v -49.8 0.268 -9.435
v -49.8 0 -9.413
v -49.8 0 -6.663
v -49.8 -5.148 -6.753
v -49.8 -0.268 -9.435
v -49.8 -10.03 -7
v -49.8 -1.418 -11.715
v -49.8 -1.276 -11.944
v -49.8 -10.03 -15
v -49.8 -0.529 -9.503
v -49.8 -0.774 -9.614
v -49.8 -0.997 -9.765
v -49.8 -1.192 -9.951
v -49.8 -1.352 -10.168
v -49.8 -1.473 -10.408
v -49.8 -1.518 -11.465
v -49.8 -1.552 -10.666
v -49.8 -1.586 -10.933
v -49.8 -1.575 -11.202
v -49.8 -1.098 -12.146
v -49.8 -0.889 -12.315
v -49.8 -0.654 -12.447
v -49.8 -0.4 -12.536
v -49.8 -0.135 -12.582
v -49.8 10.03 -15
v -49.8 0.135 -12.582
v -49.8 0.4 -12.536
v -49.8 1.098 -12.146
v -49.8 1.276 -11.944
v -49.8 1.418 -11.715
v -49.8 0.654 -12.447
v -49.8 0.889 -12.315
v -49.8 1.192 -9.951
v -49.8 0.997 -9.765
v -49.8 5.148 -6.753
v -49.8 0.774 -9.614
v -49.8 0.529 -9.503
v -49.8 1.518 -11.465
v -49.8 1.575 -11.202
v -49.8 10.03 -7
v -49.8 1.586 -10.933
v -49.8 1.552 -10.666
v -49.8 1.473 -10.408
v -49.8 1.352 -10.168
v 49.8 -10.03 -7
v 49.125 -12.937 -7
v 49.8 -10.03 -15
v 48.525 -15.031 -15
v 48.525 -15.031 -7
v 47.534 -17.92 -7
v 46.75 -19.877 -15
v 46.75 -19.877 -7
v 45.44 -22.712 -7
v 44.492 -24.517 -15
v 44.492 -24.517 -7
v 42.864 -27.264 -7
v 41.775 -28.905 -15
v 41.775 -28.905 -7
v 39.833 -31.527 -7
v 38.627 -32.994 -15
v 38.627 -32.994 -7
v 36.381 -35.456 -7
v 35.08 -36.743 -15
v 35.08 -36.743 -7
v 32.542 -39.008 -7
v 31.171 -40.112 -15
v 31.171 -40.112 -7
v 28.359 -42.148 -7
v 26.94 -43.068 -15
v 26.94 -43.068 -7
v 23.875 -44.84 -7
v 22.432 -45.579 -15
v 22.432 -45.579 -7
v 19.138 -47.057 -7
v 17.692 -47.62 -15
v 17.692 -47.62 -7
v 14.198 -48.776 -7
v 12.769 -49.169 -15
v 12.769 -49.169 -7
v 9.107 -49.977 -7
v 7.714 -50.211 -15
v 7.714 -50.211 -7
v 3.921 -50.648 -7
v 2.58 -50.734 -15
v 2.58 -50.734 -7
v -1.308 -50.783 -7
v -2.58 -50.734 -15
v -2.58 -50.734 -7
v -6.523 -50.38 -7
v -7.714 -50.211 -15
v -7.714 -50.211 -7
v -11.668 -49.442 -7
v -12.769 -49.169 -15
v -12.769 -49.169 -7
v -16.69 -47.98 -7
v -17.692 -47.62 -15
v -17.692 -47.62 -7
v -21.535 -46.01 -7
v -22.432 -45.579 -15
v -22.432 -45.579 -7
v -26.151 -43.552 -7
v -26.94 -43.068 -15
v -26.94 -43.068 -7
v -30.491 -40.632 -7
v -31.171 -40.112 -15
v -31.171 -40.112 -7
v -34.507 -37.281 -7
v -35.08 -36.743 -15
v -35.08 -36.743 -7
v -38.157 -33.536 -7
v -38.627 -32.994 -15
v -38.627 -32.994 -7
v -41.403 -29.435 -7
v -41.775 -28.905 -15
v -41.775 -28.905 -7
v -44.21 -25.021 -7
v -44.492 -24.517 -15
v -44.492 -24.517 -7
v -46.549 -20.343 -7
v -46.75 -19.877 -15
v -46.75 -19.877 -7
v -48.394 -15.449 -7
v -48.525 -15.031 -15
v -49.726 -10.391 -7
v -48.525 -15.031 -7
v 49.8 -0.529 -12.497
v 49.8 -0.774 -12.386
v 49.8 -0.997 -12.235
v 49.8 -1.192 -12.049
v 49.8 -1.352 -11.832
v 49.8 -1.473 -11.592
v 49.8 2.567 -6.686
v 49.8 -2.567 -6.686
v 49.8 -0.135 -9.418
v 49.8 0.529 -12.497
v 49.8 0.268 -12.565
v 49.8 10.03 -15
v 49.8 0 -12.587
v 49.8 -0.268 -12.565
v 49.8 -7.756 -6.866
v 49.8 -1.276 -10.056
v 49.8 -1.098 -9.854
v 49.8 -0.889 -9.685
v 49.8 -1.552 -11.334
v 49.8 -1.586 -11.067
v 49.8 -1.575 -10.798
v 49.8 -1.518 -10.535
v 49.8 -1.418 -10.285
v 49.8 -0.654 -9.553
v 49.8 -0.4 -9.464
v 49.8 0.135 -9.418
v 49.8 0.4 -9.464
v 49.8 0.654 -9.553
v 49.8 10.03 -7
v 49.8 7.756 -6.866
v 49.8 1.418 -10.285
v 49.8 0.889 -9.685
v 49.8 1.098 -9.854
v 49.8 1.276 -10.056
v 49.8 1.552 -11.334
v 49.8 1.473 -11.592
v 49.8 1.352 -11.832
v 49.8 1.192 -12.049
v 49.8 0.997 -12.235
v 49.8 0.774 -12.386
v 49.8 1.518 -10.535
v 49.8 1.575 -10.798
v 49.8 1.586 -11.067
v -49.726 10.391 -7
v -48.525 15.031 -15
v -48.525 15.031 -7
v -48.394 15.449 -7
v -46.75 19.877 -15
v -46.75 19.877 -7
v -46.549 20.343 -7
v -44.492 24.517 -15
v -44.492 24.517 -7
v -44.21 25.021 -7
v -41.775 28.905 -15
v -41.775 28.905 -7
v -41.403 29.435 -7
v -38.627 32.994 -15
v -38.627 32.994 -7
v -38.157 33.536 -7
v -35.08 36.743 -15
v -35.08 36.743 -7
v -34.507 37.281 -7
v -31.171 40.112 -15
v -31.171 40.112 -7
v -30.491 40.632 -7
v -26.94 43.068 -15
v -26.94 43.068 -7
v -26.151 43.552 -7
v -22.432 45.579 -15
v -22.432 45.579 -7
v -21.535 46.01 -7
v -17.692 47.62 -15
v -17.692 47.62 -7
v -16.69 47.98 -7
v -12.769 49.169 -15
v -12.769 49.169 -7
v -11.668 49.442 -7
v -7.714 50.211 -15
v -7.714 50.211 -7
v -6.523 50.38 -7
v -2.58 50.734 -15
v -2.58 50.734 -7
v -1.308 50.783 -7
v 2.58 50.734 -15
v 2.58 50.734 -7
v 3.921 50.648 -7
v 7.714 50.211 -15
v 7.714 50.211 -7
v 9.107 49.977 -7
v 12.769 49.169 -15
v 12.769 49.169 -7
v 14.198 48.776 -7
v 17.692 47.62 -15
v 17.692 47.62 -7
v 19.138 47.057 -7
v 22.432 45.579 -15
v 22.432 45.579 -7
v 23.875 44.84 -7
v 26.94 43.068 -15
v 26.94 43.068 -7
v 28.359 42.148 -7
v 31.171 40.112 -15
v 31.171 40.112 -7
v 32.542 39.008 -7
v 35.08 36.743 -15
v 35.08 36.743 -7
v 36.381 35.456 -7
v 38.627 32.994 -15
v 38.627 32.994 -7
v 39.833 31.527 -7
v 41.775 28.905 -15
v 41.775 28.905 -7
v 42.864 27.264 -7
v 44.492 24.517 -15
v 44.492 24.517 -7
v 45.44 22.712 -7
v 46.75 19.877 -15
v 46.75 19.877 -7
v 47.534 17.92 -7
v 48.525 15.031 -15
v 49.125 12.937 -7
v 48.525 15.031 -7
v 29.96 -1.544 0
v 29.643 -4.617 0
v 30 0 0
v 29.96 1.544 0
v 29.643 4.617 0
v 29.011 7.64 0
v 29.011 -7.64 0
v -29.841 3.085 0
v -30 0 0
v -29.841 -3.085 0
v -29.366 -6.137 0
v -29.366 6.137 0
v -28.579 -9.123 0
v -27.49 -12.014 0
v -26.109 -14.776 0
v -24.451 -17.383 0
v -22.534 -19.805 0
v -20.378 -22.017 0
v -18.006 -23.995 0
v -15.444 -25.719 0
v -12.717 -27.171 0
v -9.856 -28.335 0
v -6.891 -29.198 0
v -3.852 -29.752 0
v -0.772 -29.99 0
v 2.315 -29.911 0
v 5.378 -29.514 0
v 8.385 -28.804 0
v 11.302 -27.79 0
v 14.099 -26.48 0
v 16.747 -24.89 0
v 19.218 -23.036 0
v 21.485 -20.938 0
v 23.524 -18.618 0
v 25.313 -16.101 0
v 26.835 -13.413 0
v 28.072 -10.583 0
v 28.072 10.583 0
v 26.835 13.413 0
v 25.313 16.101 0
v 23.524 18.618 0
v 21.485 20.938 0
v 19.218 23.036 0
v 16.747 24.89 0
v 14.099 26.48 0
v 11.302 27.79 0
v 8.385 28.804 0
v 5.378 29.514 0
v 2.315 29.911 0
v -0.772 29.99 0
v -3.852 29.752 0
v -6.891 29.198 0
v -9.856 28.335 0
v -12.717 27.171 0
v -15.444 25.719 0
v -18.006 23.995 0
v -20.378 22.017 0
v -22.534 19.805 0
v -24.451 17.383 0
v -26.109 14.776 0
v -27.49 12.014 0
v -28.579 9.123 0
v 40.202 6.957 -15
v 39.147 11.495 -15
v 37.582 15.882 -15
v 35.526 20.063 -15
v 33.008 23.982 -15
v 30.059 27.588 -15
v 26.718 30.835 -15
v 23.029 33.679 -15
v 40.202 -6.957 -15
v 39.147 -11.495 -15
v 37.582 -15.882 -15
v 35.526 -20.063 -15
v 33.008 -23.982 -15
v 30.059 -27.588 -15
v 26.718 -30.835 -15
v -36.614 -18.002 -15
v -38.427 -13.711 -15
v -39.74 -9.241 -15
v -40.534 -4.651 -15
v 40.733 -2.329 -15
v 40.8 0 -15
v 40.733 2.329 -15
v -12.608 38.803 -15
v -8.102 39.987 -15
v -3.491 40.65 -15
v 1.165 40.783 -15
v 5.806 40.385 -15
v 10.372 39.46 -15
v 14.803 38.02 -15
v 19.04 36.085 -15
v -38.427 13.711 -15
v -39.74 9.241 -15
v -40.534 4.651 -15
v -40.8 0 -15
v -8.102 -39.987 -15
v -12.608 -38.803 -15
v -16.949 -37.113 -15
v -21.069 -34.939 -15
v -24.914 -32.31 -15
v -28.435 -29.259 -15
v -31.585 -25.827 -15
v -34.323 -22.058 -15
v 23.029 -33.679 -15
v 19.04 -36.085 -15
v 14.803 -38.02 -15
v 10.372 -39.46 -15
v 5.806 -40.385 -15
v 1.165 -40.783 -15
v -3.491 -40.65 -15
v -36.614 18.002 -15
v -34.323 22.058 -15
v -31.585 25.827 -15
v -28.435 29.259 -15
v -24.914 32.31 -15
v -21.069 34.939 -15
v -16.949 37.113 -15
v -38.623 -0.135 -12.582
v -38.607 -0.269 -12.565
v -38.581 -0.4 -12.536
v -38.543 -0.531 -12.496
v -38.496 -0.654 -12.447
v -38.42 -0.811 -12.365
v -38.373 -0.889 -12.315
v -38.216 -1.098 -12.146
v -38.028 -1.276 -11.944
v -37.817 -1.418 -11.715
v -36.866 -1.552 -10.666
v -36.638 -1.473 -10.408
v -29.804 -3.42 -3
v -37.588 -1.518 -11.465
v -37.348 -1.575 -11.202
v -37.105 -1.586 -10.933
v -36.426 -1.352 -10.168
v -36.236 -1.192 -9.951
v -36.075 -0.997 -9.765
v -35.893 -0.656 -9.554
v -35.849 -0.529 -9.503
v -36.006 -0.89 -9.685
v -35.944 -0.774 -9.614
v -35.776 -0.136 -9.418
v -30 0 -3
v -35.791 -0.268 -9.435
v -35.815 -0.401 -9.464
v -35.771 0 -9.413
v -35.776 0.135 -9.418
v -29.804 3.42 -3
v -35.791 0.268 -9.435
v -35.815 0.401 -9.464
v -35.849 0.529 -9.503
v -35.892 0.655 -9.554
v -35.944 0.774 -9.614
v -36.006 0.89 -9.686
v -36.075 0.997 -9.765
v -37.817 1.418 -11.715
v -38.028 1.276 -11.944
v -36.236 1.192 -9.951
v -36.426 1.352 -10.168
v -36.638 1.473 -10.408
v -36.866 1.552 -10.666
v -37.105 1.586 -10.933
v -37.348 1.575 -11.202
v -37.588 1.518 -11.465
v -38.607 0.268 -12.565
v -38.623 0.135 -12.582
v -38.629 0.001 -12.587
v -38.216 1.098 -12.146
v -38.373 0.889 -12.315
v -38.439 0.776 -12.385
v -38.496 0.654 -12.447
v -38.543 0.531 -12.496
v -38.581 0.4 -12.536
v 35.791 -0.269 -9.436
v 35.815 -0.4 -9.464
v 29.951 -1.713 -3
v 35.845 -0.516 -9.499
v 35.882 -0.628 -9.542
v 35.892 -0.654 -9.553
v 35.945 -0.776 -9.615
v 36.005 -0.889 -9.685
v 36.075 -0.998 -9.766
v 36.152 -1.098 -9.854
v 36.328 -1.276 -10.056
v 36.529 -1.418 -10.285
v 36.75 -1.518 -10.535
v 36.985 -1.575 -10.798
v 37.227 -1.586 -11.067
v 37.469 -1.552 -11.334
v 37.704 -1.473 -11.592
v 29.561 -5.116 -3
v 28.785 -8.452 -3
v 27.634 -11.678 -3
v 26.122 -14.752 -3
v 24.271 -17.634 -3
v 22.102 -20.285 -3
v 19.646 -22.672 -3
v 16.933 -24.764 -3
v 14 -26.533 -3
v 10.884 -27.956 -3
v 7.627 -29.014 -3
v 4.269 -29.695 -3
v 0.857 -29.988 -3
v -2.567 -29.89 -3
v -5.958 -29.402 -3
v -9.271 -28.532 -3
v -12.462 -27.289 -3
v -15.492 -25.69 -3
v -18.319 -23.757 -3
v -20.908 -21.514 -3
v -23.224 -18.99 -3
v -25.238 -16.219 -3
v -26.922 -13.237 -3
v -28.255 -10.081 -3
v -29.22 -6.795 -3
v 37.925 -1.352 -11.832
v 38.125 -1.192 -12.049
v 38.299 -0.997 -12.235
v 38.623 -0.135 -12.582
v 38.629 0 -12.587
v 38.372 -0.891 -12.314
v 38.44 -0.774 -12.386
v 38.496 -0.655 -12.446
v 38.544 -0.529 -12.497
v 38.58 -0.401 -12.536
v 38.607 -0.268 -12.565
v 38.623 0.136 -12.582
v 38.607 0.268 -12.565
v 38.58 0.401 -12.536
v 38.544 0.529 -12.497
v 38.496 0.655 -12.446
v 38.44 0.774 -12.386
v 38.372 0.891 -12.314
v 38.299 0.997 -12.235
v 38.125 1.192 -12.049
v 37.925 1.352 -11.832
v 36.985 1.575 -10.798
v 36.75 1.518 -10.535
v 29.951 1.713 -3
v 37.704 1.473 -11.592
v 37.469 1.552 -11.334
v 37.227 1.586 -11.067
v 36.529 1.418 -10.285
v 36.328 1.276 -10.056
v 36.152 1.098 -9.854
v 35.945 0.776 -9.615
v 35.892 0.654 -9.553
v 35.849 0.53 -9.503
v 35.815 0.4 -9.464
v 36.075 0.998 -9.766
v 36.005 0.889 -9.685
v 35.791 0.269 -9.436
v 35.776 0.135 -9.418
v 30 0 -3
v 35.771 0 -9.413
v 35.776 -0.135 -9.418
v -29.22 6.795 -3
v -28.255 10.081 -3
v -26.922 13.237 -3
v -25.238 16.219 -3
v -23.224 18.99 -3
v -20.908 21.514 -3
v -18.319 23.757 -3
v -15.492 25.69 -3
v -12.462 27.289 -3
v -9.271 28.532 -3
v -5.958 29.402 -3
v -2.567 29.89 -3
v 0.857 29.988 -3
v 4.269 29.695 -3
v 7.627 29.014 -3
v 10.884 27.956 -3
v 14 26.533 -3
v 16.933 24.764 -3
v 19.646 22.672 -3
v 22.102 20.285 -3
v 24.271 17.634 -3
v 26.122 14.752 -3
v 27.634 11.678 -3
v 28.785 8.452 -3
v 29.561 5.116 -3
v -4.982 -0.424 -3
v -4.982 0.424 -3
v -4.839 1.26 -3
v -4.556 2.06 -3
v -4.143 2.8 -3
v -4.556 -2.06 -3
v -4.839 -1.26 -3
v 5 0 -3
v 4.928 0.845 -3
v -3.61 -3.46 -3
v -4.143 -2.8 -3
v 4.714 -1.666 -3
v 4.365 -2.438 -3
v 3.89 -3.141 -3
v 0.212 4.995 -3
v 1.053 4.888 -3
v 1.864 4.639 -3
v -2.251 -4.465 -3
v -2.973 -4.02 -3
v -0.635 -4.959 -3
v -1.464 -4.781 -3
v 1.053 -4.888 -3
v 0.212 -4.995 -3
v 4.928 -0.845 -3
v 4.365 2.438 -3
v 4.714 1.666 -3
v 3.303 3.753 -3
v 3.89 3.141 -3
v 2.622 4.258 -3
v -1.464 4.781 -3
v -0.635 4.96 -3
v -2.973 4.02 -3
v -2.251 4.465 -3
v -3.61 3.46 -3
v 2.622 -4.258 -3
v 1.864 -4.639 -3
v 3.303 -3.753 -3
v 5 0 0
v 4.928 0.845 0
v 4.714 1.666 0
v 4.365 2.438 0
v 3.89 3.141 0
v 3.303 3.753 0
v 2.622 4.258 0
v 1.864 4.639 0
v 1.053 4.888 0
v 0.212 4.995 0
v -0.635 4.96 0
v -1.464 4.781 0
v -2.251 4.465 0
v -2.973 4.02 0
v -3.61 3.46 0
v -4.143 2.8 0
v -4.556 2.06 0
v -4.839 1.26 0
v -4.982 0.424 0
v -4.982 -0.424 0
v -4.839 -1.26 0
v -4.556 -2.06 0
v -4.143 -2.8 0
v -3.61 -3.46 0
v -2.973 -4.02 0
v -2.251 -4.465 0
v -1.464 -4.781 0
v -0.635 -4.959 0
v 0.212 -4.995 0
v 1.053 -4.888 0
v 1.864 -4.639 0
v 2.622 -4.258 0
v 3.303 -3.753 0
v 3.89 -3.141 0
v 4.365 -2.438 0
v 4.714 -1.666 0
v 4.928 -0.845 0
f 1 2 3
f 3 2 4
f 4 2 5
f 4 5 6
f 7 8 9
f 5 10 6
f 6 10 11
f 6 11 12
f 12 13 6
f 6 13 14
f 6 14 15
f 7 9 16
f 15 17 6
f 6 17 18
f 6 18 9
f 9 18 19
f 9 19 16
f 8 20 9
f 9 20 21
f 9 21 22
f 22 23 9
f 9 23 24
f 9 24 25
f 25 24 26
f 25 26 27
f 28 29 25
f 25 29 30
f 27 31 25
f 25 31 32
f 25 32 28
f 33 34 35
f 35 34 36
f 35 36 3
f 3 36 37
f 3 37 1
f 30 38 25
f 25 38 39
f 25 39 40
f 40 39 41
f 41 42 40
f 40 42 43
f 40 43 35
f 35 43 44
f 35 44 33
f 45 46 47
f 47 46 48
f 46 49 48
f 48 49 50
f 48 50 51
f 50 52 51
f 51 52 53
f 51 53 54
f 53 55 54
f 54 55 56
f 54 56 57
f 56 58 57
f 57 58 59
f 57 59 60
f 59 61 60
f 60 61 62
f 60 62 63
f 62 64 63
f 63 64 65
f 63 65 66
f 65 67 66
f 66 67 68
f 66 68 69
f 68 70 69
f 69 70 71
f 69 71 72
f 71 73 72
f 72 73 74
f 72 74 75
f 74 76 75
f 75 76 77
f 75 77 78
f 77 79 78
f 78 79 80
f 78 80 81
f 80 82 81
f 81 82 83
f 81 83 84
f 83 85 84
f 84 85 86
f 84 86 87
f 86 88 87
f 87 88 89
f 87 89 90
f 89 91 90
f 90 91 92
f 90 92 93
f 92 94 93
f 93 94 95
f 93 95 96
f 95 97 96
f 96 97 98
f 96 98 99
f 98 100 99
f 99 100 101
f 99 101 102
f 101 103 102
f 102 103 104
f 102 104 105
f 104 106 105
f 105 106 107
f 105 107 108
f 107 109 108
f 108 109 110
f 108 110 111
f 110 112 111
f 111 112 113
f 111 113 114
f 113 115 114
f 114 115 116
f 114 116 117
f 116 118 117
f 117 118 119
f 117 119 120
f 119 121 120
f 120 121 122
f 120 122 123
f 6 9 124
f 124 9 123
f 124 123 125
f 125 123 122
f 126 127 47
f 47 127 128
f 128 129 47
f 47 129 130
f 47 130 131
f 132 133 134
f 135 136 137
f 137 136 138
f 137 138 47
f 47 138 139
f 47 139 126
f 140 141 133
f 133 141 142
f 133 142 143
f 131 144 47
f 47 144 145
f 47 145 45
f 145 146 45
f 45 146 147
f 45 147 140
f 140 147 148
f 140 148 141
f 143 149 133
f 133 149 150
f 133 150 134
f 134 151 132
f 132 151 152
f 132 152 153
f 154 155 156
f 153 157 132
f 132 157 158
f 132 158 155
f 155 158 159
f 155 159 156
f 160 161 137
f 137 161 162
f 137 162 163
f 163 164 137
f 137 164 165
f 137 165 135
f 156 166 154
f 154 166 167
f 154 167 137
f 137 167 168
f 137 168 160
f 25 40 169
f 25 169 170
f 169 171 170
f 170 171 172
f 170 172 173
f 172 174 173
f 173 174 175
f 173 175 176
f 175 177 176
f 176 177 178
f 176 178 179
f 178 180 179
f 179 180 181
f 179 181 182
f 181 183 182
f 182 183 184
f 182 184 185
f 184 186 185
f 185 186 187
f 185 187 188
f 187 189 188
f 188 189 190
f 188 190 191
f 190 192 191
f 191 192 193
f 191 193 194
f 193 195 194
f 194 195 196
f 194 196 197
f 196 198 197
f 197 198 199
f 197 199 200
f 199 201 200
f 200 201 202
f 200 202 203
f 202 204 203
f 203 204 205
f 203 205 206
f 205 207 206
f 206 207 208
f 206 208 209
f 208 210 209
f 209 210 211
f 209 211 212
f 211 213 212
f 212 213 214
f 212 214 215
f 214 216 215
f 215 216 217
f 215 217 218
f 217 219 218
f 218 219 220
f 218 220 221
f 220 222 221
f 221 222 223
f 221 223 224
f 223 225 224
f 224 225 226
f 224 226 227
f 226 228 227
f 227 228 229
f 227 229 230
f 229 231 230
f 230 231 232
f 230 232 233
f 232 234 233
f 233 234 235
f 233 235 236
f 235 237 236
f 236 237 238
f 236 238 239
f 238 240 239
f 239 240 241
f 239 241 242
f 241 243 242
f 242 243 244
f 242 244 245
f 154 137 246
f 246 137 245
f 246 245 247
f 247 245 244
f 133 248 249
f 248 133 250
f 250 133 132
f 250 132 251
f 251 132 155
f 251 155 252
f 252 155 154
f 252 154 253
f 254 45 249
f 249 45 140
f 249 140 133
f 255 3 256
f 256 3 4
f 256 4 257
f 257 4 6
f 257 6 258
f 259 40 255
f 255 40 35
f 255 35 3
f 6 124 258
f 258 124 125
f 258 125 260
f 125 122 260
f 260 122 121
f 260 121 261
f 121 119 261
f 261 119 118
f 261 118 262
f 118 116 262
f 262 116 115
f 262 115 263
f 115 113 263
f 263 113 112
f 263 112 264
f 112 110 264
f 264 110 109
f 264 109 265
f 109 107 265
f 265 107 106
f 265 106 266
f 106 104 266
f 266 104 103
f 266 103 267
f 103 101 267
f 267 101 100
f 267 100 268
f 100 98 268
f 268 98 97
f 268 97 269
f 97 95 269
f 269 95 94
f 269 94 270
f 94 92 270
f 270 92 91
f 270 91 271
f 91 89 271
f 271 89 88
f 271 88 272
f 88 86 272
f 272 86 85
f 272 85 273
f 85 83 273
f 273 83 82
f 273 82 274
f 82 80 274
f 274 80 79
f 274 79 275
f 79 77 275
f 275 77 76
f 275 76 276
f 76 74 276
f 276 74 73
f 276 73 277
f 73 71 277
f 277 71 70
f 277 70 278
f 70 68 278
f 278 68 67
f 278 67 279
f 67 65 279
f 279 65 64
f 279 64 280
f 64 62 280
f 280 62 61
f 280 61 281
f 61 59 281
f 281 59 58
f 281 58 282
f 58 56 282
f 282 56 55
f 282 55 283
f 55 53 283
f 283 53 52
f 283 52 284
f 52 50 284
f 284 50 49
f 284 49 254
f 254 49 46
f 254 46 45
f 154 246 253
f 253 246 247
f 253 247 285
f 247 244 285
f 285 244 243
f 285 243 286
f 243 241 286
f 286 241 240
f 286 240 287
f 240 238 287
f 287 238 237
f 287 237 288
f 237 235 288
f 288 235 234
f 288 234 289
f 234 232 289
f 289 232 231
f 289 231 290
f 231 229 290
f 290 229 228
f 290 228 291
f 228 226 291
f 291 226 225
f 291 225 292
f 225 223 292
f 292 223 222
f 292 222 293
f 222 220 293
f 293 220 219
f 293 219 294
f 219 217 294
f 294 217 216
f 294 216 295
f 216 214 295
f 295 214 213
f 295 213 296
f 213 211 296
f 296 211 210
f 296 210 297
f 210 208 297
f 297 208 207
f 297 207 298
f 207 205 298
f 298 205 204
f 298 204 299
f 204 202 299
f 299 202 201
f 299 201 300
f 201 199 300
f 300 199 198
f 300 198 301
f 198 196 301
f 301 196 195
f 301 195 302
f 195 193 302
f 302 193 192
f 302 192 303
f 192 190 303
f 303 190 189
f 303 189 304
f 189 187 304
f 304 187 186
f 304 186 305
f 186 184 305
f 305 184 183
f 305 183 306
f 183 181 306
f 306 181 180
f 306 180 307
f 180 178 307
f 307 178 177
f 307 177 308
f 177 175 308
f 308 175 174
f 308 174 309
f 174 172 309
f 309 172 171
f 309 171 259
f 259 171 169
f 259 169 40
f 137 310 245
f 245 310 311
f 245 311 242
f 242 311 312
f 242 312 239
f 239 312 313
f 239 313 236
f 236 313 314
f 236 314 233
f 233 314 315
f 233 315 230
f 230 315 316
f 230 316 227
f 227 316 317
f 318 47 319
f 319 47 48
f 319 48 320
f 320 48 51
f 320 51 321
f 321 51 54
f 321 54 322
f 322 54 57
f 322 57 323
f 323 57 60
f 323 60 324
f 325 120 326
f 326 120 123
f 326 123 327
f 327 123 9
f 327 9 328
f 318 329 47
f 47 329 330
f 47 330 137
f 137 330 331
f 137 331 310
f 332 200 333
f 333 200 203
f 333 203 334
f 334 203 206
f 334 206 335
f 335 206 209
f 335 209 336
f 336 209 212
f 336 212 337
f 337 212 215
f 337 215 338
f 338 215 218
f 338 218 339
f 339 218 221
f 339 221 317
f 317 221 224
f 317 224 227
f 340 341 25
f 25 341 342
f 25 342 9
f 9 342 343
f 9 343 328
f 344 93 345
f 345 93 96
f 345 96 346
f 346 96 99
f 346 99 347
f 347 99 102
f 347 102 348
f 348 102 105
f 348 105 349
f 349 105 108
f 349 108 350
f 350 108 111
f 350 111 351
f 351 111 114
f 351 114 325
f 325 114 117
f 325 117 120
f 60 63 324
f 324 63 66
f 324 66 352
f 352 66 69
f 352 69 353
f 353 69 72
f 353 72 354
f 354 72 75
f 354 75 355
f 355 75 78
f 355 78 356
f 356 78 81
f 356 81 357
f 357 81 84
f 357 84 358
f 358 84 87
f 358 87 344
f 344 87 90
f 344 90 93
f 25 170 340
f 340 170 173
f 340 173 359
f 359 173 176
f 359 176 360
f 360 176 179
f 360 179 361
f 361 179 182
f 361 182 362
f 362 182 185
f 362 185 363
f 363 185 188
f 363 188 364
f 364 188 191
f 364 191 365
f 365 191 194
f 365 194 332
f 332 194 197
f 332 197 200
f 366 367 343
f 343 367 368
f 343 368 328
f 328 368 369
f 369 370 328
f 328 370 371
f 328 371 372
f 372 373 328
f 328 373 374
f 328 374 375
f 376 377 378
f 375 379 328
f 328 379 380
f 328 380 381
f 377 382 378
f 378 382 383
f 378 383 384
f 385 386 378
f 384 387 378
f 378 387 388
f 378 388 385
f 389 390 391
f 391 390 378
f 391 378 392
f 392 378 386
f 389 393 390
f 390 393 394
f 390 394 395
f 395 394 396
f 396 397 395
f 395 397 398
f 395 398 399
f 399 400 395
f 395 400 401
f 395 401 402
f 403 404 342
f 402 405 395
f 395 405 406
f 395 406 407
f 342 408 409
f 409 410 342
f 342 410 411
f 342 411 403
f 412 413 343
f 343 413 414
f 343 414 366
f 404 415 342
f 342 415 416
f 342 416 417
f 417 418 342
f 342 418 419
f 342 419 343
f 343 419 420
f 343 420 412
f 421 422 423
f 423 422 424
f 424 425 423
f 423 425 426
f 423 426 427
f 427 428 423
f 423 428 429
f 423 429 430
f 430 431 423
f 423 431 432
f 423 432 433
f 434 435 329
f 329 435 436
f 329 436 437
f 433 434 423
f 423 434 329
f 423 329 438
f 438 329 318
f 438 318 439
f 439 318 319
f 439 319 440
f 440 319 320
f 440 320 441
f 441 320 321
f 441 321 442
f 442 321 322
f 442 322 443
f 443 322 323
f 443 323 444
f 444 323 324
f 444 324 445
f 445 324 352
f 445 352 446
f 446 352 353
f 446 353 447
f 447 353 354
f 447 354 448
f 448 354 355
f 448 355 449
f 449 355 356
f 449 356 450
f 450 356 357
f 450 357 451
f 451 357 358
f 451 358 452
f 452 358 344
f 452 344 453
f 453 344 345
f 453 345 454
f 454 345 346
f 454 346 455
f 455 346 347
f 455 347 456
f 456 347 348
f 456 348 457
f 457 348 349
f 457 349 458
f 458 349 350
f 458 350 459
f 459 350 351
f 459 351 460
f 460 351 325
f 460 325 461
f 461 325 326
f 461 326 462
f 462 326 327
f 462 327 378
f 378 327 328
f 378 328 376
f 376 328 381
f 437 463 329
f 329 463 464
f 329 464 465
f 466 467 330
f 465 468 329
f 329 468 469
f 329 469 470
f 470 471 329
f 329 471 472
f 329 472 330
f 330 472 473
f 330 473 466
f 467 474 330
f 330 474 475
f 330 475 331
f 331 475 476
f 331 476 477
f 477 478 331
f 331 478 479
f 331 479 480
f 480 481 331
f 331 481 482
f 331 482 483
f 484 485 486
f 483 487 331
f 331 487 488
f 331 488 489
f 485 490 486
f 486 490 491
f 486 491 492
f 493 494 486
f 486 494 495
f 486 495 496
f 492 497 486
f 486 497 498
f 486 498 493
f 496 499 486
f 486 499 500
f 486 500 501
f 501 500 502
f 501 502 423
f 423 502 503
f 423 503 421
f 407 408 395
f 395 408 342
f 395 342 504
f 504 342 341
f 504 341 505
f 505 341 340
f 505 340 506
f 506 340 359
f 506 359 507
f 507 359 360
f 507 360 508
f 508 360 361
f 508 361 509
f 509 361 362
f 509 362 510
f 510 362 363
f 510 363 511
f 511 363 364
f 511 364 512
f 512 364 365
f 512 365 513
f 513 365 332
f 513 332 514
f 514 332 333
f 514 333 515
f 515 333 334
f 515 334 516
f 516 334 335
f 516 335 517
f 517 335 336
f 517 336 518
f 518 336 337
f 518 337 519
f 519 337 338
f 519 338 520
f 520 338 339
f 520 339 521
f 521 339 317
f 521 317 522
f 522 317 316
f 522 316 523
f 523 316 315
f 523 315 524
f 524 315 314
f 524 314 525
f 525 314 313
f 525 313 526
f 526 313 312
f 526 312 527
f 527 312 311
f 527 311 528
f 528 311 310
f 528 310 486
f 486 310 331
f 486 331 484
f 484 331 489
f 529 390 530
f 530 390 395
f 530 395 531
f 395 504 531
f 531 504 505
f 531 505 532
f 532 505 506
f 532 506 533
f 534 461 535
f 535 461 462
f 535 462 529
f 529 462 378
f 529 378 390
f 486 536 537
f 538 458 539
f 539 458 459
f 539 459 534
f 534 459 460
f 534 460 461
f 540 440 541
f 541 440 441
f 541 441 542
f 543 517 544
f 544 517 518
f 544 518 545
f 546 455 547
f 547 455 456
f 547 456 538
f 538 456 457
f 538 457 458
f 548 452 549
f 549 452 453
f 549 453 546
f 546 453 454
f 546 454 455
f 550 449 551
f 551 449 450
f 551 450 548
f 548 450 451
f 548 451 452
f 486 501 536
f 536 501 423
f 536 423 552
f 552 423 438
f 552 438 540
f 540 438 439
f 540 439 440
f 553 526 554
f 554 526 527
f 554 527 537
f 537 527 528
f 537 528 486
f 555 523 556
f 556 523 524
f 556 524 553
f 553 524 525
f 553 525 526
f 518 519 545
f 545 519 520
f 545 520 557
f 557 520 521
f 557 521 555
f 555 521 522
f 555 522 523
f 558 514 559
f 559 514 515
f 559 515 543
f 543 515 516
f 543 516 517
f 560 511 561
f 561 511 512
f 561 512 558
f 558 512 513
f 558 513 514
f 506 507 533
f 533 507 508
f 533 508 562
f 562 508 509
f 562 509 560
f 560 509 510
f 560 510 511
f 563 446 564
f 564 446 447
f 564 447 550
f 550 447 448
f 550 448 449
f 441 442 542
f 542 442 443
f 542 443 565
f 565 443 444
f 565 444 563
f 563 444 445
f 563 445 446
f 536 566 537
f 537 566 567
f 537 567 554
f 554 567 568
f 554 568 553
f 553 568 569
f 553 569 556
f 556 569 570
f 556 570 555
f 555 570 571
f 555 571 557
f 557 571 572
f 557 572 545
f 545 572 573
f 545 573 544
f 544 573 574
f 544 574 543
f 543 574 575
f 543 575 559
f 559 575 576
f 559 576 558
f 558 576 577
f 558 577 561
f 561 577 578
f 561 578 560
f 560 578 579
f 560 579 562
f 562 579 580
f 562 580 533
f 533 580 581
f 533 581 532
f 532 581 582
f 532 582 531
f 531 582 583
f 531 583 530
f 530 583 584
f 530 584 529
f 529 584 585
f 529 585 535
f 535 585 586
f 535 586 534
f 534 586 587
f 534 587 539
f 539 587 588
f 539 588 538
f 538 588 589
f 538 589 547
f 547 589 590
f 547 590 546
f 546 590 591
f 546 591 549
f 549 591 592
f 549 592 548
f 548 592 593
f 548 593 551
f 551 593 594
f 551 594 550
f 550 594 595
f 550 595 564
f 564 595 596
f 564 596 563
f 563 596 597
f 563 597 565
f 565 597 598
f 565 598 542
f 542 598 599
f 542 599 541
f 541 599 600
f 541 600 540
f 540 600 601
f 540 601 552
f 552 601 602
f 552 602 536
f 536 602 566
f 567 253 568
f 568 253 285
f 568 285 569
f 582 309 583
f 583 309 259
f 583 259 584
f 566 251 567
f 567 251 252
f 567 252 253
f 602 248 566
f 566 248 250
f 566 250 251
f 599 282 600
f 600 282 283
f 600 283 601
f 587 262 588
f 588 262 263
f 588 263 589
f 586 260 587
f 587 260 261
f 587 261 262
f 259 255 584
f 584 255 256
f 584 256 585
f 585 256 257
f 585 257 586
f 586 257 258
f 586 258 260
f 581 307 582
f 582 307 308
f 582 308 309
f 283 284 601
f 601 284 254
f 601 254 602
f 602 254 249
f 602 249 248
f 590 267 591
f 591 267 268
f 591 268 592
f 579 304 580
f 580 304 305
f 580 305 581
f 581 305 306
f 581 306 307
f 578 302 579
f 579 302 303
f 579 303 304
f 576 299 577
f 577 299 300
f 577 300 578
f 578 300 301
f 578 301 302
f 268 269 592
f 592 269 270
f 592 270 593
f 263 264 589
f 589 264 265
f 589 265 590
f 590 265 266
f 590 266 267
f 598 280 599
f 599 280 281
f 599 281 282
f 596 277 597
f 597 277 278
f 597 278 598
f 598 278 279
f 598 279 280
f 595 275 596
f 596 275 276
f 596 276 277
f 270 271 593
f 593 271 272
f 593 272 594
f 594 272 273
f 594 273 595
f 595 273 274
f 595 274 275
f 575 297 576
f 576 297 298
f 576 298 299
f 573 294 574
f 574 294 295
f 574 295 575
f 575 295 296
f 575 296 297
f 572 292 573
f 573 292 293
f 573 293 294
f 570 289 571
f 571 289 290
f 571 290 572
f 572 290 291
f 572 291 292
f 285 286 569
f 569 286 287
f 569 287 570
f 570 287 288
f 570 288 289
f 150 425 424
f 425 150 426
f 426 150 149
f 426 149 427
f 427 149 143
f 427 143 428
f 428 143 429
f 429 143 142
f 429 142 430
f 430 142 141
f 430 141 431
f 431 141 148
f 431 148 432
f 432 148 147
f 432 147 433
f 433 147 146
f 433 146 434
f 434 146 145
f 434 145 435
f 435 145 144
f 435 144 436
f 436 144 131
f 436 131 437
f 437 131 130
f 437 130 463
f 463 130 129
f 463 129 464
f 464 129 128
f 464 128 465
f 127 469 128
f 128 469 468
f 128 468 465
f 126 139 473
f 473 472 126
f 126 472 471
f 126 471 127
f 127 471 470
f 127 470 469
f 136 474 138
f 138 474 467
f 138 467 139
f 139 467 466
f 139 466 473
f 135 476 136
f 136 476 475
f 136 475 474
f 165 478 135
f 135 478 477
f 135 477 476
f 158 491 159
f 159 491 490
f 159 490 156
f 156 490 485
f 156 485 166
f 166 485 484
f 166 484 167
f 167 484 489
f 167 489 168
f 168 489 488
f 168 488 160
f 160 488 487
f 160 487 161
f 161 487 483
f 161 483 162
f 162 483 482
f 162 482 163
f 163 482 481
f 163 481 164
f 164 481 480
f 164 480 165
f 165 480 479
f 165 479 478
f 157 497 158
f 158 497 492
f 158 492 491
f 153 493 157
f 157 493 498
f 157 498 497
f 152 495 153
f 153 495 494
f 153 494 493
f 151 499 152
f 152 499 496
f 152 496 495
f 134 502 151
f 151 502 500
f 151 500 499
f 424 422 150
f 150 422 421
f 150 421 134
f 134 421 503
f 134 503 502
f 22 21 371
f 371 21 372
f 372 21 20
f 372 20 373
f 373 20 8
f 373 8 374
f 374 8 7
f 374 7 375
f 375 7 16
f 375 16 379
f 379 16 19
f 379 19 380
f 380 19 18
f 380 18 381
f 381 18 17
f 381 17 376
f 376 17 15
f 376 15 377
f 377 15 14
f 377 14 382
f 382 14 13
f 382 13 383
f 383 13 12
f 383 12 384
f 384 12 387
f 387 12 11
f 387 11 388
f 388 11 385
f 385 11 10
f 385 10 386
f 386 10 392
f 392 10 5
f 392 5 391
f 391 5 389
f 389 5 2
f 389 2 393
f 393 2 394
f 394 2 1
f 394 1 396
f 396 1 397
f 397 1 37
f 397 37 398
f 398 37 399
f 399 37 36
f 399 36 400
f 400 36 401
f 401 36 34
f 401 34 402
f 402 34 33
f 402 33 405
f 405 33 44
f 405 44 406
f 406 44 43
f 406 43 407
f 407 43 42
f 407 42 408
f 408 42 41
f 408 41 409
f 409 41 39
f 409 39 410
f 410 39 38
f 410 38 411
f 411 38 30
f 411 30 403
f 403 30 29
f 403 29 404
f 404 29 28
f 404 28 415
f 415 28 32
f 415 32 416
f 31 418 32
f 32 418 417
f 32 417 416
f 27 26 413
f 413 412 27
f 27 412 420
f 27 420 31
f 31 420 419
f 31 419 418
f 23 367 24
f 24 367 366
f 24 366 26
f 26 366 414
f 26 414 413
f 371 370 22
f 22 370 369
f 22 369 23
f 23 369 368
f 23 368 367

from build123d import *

# Parameters (mm, degrees)
SKETCH5_W                         = 25
SKETCH5_H                         = 25
CUT_EXTRUDE3_DEPTH                = 1
F_1_8_0_125_DIAMETER_HOLE2_REACH  = 115.234
F_1_8_0_125_DIAMETER_HOLE2_BORE_R = 1.5875


with BuildPart() as part:
    # Sketch2 → Revolve1 (revolve)
    with BuildSketch(Plane(origin=(0, 0, 0), x_dir=(0, 0, -1), z_dir=(1, 0, 0)), mode=Mode.PRIVATE) as revolve1_sk:
        Polygon((0, 30), (7, 50.8), (15, 50.8), (15, 40.8), (3, 30), (3, 5), (0, 5), align=None)
    revolve(revolve1_sk.sketch.rotate(Axis((0, 0, 1000), (0, 0, -1)), 90), axis=Axis((0, 0, 1000), (0, 0, -1)))

    # Sketch5 → Cut-Extrude3 (cut)
    with BuildSketch(Plane(origin=(50.8, 0, 0), x_dir=(0, 0, -1), z_dir=(1, 0, 0))):
        with Locations((10, 0)):
            Rectangle(SKETCH5_W, SKETCH5_H)
    cut_extrude3 = extrude(amount=-CUT_EXTRUDE3_DEPTH, mode=Mode.SUBTRACT)

    # 1/8 (0.125) Diameter Hole2 bore (on position points) → 1/8 (0.125) Diameter Hole2 (cut, up to next)
    with BuildSketch(Plane(origin=(49.8, 0, -11), x_dir=(0, 0, 1), z_dir=(1, 0, 0)), mode=Mode.PRIVATE) as f_1_8_0_125_diameter_hole2_sk1:
        Circle(F_1_8_0_125_DIAMETER_HOLE2_BORE_R)
    f_1_8_0_125_diameter_hole2_tool1 = extrude(f_1_8_0_125_diameter_hole2_sk1.sketch, amount=-F_1_8_0_125_DIAMETER_HOLE2_REACH, mode=Mode.PRIVATE) & part.part
    f_1_8_0_125_diameter_hole2 = f_1_8_0_125_diameter_hole2_tool1.solids().sort_by_distance((49.8, 0, -11))[0]
    add(f_1_8_0_125_diameter_hole2, mode=Mode.SUBTRACT)

    # Mirror2: Cut-Extrude3, 1/8 (0.125) Diameter Hole2 across plane
    add(cut_extrude3.mirror(Plane(origin=(0, 0, 0), x_dir=(0, 0, 1), z_dir=(1, 0, 0))), mode=Mode.SUBTRACT)
    add(f_1_8_0_125_diameter_hole2.mirror(Plane(origin=(0, 0, 0), x_dir=(0, 0, 1), z_dir=(1, 0, 0))), mode=Mode.SUBTRACT)


solid = part.part
